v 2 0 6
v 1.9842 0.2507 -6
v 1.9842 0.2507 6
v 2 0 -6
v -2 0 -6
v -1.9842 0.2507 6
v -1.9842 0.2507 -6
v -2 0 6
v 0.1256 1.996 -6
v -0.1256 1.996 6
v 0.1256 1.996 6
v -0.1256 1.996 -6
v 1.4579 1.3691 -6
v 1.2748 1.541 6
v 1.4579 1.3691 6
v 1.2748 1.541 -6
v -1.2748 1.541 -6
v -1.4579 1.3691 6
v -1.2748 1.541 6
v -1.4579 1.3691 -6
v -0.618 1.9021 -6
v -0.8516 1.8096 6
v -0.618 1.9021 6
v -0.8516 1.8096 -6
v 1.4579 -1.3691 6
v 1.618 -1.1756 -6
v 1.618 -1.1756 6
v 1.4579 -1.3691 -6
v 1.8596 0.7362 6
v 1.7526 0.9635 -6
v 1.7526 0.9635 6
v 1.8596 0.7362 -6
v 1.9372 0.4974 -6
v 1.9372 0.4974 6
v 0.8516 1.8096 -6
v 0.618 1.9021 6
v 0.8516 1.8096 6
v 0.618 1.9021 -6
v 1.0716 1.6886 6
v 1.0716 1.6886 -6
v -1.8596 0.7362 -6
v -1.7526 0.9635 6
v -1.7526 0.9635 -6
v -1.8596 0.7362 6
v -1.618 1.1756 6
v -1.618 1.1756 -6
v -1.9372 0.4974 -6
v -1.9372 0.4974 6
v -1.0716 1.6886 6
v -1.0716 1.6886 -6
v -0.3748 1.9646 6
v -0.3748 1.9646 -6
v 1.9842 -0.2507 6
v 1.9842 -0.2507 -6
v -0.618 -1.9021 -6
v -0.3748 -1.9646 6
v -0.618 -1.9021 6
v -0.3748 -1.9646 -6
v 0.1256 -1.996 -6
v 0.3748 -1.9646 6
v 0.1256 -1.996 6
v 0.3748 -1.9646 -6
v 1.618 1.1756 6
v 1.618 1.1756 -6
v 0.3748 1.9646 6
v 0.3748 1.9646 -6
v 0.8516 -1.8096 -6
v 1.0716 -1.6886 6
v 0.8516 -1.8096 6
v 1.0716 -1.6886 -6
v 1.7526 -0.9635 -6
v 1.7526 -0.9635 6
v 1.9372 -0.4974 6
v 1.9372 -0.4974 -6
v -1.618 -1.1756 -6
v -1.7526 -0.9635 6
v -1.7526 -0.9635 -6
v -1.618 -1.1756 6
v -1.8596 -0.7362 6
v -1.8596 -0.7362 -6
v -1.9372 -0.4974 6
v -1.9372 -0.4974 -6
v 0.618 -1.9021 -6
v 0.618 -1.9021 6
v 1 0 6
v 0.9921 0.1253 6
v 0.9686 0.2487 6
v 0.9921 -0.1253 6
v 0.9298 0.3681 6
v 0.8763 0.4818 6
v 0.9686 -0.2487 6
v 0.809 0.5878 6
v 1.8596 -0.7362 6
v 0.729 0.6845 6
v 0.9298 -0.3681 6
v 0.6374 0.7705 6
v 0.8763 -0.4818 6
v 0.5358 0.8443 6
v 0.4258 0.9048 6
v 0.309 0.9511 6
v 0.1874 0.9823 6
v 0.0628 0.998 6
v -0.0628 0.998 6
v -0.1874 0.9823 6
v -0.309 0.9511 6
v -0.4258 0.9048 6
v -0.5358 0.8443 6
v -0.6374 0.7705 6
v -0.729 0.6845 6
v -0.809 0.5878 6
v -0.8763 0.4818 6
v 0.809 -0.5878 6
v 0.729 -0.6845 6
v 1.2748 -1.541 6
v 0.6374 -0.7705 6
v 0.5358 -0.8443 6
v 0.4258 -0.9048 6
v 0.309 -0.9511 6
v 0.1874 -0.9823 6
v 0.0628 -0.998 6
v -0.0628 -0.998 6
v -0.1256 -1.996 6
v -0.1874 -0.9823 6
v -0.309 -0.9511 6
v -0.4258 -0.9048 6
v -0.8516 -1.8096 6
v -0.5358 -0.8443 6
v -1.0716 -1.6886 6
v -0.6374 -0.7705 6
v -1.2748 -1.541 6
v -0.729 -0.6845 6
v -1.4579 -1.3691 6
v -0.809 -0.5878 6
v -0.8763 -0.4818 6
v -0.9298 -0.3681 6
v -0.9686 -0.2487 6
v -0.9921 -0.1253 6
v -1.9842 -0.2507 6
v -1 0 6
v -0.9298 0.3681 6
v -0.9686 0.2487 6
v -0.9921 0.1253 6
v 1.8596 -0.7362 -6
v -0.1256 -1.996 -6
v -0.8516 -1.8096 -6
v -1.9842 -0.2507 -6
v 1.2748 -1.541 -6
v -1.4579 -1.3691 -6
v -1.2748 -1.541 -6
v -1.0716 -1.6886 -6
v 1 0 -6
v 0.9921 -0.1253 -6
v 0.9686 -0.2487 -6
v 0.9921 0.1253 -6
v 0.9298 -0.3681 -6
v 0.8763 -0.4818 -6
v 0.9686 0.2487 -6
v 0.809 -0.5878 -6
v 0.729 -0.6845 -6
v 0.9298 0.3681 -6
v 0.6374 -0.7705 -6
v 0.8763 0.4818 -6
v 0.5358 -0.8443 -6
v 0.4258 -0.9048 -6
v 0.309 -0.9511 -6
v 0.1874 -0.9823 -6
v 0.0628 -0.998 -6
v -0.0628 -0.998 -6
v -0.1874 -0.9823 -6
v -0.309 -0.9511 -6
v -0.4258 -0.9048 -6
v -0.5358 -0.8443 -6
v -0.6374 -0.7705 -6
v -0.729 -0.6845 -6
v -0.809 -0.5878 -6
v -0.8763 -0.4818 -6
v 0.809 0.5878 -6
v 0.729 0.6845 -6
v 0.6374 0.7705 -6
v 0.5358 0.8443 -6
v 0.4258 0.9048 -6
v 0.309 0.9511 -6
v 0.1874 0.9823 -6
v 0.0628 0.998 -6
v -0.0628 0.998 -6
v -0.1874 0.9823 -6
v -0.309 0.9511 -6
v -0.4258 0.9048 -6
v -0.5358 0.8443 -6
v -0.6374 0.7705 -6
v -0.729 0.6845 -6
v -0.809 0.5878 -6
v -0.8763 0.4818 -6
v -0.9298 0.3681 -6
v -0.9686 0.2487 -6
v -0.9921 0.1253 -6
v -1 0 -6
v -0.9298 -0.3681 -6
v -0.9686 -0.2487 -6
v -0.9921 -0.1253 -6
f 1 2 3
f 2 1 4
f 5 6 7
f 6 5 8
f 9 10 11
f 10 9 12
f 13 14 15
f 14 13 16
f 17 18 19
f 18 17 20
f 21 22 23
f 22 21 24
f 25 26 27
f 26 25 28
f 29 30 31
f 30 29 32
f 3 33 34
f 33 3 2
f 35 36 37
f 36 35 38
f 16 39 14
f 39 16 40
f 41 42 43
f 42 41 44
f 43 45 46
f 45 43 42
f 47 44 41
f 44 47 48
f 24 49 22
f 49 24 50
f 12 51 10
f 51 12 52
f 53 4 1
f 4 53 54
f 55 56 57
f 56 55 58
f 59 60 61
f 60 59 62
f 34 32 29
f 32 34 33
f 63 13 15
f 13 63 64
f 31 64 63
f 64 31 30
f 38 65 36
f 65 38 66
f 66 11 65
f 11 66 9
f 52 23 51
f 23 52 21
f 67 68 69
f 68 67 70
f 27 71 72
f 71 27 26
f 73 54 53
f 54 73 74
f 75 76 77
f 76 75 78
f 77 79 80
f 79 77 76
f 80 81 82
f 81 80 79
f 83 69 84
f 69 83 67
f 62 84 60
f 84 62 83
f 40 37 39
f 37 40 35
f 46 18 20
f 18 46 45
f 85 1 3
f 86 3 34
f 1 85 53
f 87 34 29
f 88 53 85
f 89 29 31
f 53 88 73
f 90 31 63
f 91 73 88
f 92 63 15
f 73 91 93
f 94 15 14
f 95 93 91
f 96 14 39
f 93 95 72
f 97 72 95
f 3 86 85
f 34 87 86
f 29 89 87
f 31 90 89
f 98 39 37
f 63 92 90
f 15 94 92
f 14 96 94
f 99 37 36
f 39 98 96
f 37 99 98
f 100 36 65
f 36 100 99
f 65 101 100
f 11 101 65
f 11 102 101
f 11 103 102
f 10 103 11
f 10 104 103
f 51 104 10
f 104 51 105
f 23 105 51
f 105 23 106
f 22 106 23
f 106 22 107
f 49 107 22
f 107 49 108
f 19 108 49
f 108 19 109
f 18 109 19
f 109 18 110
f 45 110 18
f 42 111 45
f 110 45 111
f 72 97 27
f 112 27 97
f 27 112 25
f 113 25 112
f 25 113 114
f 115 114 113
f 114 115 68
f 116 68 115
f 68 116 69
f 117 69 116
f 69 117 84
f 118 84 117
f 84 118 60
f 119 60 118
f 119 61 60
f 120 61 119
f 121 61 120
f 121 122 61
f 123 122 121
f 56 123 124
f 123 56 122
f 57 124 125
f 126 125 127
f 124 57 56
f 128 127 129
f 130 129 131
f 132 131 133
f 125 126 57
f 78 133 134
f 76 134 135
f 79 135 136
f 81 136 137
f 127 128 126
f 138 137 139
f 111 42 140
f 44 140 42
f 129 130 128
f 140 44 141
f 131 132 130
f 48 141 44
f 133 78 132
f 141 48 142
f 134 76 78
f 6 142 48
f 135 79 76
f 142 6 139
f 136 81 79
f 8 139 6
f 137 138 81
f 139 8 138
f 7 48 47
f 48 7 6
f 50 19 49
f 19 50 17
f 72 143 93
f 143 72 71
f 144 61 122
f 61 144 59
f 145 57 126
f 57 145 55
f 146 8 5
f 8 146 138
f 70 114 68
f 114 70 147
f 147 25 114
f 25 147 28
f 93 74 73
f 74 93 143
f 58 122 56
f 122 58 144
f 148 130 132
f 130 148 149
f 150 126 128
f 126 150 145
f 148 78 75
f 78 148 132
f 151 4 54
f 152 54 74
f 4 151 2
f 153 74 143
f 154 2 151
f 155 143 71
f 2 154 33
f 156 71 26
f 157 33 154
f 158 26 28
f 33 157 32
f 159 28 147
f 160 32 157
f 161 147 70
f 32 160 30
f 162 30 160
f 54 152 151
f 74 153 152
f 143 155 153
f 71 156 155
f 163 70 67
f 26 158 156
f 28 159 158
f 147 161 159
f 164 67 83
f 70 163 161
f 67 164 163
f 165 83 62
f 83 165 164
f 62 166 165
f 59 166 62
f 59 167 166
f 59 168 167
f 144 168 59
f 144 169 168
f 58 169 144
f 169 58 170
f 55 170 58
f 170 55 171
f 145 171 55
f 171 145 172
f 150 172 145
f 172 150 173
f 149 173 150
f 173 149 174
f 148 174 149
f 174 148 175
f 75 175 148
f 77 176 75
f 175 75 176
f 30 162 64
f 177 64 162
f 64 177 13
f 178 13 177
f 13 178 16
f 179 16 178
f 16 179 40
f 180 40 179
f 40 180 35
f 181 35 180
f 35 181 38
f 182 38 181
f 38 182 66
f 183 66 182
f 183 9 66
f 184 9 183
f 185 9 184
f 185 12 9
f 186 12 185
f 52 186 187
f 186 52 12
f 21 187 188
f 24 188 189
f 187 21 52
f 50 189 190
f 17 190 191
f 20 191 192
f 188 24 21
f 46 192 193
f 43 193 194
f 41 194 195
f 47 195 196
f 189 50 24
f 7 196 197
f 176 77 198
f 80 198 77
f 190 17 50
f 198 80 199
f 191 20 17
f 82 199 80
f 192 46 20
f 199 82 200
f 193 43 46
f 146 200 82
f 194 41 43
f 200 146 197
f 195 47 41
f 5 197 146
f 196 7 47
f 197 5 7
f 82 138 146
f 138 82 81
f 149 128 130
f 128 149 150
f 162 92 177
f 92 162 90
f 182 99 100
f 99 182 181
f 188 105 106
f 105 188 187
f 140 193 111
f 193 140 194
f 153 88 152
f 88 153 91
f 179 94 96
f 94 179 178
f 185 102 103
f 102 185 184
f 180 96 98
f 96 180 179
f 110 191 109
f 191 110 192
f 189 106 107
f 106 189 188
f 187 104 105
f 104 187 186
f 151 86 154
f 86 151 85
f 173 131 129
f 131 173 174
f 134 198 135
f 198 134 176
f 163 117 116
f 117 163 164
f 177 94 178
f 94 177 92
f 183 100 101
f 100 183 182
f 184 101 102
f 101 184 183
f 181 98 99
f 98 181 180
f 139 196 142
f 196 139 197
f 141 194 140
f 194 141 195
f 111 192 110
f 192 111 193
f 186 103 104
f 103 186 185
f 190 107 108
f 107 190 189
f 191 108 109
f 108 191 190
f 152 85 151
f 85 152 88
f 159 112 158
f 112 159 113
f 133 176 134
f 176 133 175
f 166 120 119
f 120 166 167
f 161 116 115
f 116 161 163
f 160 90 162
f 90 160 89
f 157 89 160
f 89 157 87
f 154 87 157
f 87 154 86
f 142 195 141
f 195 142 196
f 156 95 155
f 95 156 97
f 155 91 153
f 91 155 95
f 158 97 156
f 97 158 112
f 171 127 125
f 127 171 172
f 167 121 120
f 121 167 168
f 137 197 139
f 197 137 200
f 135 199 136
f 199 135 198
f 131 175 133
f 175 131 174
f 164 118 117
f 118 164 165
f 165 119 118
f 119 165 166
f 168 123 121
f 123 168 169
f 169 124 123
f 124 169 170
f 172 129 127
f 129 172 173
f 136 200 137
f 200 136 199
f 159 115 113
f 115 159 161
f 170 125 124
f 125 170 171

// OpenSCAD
$fn = 50;


difference() {
	union() {
		translate(v = [0, 0, -6.0000000000]) {
			cylinder(h = 12, r = 2.0000000000);
		}
	}
	union() {
		translate(v = [0, 0, -100.0000000000]) {
			cylinder(h = 200, r = 1.0000000000);
		}
	}
}
